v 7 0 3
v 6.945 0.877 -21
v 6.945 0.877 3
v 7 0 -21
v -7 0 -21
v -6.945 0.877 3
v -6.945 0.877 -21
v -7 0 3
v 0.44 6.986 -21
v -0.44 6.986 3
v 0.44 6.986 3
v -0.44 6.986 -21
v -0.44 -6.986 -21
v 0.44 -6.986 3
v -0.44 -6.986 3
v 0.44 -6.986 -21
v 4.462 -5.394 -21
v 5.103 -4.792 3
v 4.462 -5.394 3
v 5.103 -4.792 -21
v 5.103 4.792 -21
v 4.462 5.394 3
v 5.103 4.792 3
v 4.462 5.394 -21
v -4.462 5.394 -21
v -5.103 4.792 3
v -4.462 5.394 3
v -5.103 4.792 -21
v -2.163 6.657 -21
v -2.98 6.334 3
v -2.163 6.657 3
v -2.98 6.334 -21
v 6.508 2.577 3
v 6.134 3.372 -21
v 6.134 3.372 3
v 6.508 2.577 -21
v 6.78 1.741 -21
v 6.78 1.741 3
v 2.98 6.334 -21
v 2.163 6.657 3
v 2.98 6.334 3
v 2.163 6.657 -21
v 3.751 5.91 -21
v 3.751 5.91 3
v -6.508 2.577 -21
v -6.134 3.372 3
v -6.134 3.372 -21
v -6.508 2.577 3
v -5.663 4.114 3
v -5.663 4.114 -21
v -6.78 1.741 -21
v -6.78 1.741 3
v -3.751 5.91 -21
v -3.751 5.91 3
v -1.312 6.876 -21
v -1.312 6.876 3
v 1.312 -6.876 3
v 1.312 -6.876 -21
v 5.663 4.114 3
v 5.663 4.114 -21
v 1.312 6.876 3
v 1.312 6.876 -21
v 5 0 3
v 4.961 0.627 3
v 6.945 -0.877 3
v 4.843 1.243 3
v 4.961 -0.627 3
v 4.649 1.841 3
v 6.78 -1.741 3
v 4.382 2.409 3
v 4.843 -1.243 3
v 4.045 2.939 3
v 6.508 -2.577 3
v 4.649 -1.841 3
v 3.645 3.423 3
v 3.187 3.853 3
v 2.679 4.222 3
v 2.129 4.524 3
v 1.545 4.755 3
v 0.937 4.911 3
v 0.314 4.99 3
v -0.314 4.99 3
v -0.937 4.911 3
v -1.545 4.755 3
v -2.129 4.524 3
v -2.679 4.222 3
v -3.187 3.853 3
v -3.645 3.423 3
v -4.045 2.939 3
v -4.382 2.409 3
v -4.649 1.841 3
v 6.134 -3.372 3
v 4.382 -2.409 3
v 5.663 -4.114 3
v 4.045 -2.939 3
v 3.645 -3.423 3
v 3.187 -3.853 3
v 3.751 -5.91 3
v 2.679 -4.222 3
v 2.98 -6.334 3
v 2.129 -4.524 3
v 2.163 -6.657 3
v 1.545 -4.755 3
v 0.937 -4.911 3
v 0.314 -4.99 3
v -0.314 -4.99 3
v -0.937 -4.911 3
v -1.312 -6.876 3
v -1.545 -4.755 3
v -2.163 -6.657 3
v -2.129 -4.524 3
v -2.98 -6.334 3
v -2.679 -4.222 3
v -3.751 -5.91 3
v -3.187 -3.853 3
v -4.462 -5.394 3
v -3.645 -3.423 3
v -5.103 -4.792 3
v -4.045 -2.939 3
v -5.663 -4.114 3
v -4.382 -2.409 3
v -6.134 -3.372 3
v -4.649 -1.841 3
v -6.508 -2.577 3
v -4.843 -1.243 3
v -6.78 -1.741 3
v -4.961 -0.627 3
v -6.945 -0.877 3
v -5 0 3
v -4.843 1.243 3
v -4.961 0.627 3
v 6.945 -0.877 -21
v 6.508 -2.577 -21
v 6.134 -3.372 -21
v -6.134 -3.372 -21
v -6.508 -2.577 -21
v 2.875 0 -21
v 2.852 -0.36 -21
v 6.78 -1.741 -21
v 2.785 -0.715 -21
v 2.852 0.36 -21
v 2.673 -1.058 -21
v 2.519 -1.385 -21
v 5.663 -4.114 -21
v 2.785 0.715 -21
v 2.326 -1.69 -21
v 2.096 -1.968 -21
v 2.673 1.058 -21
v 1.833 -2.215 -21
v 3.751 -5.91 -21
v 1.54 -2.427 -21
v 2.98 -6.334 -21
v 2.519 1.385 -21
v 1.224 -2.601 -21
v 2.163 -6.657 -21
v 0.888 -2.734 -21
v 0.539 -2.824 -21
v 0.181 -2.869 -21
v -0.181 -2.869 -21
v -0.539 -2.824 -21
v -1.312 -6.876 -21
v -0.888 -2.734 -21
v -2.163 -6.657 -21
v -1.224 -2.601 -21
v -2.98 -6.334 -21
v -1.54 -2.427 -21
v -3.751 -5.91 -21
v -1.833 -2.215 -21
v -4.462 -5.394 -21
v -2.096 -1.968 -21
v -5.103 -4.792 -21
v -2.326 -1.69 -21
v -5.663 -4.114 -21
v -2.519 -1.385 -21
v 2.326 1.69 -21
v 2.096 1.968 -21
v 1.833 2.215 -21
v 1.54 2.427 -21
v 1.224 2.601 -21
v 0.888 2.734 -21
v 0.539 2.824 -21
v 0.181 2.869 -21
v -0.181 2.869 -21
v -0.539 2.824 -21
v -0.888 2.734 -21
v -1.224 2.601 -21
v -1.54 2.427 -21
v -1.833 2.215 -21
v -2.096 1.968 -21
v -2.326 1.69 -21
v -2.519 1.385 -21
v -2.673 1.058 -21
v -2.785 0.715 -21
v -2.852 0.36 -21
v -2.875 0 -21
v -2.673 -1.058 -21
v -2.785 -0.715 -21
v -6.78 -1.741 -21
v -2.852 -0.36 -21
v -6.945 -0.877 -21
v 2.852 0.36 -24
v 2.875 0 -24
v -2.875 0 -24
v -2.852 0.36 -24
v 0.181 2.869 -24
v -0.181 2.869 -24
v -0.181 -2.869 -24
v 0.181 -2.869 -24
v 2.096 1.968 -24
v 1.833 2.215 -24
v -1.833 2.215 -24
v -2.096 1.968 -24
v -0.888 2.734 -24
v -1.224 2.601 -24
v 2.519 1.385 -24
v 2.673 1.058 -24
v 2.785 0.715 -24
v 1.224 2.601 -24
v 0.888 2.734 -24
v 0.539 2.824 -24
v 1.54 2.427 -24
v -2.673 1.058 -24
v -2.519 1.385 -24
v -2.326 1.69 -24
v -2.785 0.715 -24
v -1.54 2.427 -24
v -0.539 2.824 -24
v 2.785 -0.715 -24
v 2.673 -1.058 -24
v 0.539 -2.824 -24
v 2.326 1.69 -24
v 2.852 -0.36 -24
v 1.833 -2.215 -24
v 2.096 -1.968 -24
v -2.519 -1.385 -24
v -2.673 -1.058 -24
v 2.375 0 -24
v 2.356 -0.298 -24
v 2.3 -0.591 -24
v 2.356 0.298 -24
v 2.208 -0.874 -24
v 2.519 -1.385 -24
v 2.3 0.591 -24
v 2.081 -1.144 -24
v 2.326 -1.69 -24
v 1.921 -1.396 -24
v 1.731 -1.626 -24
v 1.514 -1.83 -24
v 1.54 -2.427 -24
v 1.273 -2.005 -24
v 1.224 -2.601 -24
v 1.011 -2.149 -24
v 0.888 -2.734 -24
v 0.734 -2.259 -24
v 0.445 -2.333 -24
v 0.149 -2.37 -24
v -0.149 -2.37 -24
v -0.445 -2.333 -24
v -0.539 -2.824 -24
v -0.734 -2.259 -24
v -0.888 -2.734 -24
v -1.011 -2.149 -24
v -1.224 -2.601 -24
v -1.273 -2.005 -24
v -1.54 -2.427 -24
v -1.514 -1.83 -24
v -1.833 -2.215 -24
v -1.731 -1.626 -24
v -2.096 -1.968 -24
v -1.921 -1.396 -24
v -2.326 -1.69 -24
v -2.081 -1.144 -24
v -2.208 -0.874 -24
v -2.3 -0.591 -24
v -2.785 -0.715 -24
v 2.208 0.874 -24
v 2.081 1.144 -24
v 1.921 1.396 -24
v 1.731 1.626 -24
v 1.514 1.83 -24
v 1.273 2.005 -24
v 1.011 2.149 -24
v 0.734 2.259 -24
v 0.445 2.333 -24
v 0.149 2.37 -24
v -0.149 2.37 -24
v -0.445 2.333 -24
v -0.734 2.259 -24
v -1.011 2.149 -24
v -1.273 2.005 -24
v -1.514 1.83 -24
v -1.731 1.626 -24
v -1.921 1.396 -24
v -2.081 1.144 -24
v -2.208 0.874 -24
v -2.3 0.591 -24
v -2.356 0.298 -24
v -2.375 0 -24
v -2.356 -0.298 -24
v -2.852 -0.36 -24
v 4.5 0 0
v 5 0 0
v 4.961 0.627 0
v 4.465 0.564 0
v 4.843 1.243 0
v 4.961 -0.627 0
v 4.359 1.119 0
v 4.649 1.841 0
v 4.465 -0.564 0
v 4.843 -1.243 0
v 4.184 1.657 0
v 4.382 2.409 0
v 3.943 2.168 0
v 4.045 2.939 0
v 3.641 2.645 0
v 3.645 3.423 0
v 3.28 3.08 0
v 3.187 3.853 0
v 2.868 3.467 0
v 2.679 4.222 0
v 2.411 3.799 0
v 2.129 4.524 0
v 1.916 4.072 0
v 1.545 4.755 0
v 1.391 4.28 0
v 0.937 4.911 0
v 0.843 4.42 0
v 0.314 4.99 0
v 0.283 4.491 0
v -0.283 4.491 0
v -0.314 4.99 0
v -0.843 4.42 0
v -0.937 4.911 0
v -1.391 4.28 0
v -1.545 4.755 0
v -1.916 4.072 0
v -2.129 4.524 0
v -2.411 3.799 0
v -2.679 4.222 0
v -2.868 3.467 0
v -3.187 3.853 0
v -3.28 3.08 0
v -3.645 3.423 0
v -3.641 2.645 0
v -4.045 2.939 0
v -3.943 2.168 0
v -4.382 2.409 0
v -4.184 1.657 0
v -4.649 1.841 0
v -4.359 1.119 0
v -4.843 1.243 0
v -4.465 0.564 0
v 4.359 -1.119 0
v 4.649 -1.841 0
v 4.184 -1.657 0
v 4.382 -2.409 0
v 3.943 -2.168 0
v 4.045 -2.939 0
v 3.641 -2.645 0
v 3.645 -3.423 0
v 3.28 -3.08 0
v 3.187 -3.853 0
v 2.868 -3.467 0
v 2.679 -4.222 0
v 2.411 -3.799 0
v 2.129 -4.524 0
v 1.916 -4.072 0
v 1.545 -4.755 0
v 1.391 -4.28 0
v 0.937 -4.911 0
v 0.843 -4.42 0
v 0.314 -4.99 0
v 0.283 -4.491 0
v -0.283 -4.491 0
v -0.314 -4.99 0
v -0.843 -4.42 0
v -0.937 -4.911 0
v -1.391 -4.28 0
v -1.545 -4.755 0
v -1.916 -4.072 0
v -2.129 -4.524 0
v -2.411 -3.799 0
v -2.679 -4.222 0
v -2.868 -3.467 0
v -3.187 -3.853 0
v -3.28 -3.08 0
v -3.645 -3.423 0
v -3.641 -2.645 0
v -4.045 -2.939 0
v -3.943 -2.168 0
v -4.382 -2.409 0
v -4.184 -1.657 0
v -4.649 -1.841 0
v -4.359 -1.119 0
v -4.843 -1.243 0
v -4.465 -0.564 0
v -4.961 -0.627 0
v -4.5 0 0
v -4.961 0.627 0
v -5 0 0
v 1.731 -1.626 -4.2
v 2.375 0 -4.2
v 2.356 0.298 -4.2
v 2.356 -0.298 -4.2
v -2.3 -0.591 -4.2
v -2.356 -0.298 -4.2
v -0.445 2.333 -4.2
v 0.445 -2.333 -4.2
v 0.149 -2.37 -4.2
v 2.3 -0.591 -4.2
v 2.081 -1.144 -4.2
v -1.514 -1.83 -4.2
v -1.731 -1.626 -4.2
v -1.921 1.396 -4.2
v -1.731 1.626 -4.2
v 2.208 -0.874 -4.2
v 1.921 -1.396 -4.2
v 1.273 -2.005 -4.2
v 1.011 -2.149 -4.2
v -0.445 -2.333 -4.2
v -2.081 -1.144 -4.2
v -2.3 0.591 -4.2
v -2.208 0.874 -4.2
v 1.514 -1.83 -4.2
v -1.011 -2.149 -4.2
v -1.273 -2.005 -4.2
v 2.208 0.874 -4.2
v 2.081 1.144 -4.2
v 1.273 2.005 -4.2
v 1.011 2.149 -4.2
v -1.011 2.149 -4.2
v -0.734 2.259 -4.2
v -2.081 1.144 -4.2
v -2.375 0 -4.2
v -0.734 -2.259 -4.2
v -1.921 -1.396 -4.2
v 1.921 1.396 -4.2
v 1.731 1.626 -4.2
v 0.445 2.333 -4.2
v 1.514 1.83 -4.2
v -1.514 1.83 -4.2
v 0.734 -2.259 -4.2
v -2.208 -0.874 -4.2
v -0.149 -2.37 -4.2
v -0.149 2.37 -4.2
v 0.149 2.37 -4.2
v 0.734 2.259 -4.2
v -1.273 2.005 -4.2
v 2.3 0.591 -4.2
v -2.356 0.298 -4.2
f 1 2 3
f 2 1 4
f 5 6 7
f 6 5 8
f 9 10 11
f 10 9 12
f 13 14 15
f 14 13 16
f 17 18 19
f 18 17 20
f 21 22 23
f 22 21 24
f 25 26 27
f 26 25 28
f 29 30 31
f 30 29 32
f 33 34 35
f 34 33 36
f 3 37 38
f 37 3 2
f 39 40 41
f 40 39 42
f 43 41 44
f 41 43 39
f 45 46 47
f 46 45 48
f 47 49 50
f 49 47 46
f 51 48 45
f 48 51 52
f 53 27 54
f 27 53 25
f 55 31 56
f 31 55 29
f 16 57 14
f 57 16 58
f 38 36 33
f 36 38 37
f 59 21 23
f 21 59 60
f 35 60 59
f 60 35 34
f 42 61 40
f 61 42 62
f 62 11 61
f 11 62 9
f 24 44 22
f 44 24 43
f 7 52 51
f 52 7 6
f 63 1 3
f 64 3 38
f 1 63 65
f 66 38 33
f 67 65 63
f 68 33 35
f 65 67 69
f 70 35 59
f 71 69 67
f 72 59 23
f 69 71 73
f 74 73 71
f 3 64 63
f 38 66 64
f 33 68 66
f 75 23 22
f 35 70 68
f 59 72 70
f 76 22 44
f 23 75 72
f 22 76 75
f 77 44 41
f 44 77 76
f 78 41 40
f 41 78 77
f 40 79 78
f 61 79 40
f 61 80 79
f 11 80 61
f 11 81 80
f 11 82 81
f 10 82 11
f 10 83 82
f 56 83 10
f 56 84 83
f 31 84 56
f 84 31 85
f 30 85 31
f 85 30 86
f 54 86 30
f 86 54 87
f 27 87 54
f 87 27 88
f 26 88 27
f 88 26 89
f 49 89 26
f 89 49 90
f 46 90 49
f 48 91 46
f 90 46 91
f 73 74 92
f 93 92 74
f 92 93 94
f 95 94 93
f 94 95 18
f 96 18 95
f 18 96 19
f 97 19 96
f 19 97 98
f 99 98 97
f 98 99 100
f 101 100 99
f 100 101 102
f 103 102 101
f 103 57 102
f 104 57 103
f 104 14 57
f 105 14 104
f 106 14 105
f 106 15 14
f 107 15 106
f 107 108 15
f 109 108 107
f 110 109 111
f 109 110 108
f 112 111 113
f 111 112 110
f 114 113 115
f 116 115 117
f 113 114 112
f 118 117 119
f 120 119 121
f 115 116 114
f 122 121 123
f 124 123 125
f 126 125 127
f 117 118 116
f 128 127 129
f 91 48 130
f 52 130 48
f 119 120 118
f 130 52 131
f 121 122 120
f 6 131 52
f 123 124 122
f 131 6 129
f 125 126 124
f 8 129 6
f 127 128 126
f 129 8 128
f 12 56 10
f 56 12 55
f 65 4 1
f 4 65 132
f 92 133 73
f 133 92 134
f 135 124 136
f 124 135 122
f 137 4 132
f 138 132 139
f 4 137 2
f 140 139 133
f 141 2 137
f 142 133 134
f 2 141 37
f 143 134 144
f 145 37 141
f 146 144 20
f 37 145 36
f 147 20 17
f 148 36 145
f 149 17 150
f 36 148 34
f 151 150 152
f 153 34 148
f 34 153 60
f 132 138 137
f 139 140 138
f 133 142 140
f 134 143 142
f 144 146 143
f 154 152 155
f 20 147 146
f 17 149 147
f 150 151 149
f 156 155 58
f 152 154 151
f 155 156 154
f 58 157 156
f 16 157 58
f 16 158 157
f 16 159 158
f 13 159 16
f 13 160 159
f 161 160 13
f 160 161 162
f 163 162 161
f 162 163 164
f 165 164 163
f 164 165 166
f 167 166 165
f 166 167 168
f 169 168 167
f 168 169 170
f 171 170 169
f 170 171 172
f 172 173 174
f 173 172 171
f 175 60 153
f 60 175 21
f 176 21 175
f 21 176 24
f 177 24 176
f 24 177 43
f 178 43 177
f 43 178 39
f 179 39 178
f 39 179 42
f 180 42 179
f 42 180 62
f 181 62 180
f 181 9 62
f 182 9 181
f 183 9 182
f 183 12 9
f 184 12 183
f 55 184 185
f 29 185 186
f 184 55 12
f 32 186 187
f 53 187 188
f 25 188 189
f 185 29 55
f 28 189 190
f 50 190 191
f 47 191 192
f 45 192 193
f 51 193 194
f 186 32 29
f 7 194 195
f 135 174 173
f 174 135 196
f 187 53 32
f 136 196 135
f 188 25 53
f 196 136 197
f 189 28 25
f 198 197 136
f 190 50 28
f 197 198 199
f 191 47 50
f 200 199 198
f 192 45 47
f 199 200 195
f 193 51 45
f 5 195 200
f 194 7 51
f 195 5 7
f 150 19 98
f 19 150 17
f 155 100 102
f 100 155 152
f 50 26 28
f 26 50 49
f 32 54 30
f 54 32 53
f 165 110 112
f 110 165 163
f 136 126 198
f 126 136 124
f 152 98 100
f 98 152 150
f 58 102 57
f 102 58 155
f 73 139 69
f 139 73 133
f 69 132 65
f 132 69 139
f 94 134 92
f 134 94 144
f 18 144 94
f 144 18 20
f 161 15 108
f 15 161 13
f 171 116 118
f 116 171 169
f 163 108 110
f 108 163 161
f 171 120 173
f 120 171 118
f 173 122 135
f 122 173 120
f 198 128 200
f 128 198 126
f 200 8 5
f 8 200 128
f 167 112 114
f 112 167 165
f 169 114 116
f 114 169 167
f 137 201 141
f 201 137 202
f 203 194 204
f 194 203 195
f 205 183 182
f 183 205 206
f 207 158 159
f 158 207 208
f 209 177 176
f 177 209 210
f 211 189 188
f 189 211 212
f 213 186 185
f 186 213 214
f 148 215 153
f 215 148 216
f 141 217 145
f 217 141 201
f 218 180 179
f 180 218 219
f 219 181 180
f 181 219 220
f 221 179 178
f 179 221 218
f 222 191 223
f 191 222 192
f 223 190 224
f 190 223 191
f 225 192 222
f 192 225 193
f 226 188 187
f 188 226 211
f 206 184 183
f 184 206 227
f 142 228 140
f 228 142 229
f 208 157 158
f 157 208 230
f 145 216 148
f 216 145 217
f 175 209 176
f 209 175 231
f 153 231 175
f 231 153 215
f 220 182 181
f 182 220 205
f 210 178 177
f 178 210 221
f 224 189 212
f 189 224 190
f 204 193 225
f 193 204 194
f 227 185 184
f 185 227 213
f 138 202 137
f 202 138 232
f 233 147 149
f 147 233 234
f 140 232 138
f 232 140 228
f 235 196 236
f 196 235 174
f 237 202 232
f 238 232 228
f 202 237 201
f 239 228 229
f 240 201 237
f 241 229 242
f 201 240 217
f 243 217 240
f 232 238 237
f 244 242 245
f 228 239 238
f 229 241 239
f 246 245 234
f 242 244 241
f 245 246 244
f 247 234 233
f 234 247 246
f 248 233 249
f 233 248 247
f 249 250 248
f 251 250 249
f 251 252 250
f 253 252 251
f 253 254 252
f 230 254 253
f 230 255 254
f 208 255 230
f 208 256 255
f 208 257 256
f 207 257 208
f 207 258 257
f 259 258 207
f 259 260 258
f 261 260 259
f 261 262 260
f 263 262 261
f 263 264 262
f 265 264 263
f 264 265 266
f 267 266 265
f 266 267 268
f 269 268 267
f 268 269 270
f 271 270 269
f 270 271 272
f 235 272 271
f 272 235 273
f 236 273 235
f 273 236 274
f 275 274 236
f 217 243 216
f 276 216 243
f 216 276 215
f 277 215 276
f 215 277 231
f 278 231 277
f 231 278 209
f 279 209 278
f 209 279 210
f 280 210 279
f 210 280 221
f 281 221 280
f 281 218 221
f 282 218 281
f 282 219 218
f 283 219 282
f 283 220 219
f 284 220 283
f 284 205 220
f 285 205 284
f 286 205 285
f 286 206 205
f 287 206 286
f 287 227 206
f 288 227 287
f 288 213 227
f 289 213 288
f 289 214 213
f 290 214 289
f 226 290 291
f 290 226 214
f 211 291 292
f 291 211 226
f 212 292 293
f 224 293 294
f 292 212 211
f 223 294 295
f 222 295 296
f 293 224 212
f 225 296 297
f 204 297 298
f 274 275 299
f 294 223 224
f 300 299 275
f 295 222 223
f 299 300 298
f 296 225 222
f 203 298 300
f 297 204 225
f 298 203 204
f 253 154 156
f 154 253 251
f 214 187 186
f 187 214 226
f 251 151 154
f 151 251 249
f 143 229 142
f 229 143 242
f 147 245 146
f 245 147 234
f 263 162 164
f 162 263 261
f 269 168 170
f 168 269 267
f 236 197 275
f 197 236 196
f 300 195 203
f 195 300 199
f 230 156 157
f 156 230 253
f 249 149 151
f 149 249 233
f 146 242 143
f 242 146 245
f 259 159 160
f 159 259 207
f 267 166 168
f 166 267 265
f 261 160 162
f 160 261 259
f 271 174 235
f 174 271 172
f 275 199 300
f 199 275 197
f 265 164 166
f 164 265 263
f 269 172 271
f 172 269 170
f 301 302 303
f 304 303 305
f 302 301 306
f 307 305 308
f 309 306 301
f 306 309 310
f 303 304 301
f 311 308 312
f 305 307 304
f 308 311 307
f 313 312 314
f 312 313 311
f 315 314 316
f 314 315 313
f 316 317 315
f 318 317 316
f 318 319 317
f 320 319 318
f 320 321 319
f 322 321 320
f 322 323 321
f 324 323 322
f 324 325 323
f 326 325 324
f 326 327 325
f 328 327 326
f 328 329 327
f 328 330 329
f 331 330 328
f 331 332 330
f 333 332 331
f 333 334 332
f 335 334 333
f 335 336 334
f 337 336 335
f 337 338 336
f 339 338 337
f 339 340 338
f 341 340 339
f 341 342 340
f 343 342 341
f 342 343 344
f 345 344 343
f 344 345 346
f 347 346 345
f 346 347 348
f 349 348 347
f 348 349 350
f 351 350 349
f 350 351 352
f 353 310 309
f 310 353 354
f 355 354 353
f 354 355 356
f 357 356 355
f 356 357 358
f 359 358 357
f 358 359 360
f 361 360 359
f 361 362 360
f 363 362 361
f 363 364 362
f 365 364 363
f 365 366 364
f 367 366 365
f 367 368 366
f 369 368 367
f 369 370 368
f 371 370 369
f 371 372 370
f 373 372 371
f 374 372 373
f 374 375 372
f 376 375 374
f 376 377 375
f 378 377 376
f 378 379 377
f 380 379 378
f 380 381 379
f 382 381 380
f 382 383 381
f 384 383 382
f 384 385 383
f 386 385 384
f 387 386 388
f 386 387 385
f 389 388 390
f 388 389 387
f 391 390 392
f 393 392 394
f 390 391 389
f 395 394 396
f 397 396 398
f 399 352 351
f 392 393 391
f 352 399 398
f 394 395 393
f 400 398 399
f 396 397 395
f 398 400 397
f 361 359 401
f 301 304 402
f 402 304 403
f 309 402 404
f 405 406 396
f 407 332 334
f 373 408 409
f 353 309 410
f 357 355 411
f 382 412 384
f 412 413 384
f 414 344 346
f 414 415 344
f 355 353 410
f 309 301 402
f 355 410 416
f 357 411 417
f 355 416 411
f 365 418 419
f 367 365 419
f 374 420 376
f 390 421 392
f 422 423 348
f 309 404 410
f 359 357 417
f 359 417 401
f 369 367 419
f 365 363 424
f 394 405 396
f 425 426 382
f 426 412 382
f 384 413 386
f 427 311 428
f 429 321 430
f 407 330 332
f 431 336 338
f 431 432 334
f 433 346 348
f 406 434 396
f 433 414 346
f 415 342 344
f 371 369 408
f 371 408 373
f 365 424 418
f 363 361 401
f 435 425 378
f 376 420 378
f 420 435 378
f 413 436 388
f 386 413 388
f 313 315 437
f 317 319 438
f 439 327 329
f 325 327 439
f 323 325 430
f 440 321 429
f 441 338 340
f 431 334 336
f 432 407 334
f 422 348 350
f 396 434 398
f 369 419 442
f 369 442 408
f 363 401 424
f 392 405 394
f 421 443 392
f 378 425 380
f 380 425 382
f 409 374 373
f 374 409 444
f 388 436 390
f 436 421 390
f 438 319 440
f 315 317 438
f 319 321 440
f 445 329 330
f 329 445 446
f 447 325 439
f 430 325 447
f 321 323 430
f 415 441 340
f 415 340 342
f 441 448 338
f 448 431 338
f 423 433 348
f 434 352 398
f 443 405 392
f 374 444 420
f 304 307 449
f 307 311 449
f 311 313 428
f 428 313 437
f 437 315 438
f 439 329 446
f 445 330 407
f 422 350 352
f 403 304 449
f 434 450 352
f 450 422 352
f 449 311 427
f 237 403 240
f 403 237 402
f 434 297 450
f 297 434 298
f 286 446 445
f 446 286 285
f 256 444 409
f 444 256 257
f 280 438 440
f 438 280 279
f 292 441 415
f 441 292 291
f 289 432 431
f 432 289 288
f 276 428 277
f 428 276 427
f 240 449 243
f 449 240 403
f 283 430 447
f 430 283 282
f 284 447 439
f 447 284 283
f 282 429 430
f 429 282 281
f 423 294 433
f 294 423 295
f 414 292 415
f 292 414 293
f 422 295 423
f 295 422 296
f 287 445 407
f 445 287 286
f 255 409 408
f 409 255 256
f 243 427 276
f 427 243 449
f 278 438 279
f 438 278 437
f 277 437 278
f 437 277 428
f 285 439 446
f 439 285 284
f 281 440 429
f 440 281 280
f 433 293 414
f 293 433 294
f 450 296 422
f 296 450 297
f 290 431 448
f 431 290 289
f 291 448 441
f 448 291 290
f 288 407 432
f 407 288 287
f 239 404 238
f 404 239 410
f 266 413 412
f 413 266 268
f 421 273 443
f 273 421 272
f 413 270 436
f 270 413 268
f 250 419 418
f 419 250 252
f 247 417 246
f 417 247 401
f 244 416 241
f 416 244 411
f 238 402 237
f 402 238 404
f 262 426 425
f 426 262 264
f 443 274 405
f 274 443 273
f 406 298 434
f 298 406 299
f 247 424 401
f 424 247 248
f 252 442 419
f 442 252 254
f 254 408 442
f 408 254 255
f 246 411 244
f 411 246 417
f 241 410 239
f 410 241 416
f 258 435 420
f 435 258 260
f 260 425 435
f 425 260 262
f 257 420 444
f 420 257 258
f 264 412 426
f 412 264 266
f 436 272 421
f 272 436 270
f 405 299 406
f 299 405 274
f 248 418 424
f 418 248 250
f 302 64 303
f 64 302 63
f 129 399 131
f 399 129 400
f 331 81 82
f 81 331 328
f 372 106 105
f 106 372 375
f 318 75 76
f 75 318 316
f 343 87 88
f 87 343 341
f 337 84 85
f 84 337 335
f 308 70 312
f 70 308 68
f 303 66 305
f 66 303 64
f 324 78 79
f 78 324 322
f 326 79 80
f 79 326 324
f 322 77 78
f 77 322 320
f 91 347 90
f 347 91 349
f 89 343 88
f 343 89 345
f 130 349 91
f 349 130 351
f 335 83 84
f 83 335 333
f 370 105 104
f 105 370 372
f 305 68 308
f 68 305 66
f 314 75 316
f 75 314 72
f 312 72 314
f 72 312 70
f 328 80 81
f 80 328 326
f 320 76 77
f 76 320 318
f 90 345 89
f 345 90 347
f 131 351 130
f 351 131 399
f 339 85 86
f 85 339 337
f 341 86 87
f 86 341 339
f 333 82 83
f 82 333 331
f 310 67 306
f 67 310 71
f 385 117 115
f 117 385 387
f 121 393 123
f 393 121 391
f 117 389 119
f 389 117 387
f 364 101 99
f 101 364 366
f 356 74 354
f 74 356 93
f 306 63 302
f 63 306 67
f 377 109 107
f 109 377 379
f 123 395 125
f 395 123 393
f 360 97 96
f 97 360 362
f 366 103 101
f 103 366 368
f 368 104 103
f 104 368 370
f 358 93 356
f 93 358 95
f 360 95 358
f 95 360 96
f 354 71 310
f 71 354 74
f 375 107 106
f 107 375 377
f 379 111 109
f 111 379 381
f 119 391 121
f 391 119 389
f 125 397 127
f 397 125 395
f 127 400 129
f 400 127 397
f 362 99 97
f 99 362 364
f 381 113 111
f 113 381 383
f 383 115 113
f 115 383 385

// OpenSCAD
$fn = 50;

difference() {
	union() {
		translate(v = [0, 0, -21.0]) {
			cylinder(h = 24, r = 7.0);
		}
		#translate(v = [0, 0, -24.0]) {
			cylinder(h = 24, r = 2.875);
		}
	}
	union() {
		translate(v = [0, 0, 0]) {
			rotate(a = [0, 0, 0]) {
				difference() {
					union() {
						translate(v = [0, 0, -24.0]) {
							cylinder(h = 24, r = 2.25);
						}
						translate(v = [0, 0, -4.2]) {
							cylinder(h = 4.2, r1 = 2.375, r2 = 4.5);
						}
						translate(v = [0, 0, -24.0]) {
							cylinder(h = 24, r = 2.375);
						}
						translate(v = [0, 0, -24.0]) {
							cylinder(h = 24, r = 2.25);
						}
					}
					union();
				}
			}
		}
		#cylinder(h = 3, r = 5.0);
	}
}
